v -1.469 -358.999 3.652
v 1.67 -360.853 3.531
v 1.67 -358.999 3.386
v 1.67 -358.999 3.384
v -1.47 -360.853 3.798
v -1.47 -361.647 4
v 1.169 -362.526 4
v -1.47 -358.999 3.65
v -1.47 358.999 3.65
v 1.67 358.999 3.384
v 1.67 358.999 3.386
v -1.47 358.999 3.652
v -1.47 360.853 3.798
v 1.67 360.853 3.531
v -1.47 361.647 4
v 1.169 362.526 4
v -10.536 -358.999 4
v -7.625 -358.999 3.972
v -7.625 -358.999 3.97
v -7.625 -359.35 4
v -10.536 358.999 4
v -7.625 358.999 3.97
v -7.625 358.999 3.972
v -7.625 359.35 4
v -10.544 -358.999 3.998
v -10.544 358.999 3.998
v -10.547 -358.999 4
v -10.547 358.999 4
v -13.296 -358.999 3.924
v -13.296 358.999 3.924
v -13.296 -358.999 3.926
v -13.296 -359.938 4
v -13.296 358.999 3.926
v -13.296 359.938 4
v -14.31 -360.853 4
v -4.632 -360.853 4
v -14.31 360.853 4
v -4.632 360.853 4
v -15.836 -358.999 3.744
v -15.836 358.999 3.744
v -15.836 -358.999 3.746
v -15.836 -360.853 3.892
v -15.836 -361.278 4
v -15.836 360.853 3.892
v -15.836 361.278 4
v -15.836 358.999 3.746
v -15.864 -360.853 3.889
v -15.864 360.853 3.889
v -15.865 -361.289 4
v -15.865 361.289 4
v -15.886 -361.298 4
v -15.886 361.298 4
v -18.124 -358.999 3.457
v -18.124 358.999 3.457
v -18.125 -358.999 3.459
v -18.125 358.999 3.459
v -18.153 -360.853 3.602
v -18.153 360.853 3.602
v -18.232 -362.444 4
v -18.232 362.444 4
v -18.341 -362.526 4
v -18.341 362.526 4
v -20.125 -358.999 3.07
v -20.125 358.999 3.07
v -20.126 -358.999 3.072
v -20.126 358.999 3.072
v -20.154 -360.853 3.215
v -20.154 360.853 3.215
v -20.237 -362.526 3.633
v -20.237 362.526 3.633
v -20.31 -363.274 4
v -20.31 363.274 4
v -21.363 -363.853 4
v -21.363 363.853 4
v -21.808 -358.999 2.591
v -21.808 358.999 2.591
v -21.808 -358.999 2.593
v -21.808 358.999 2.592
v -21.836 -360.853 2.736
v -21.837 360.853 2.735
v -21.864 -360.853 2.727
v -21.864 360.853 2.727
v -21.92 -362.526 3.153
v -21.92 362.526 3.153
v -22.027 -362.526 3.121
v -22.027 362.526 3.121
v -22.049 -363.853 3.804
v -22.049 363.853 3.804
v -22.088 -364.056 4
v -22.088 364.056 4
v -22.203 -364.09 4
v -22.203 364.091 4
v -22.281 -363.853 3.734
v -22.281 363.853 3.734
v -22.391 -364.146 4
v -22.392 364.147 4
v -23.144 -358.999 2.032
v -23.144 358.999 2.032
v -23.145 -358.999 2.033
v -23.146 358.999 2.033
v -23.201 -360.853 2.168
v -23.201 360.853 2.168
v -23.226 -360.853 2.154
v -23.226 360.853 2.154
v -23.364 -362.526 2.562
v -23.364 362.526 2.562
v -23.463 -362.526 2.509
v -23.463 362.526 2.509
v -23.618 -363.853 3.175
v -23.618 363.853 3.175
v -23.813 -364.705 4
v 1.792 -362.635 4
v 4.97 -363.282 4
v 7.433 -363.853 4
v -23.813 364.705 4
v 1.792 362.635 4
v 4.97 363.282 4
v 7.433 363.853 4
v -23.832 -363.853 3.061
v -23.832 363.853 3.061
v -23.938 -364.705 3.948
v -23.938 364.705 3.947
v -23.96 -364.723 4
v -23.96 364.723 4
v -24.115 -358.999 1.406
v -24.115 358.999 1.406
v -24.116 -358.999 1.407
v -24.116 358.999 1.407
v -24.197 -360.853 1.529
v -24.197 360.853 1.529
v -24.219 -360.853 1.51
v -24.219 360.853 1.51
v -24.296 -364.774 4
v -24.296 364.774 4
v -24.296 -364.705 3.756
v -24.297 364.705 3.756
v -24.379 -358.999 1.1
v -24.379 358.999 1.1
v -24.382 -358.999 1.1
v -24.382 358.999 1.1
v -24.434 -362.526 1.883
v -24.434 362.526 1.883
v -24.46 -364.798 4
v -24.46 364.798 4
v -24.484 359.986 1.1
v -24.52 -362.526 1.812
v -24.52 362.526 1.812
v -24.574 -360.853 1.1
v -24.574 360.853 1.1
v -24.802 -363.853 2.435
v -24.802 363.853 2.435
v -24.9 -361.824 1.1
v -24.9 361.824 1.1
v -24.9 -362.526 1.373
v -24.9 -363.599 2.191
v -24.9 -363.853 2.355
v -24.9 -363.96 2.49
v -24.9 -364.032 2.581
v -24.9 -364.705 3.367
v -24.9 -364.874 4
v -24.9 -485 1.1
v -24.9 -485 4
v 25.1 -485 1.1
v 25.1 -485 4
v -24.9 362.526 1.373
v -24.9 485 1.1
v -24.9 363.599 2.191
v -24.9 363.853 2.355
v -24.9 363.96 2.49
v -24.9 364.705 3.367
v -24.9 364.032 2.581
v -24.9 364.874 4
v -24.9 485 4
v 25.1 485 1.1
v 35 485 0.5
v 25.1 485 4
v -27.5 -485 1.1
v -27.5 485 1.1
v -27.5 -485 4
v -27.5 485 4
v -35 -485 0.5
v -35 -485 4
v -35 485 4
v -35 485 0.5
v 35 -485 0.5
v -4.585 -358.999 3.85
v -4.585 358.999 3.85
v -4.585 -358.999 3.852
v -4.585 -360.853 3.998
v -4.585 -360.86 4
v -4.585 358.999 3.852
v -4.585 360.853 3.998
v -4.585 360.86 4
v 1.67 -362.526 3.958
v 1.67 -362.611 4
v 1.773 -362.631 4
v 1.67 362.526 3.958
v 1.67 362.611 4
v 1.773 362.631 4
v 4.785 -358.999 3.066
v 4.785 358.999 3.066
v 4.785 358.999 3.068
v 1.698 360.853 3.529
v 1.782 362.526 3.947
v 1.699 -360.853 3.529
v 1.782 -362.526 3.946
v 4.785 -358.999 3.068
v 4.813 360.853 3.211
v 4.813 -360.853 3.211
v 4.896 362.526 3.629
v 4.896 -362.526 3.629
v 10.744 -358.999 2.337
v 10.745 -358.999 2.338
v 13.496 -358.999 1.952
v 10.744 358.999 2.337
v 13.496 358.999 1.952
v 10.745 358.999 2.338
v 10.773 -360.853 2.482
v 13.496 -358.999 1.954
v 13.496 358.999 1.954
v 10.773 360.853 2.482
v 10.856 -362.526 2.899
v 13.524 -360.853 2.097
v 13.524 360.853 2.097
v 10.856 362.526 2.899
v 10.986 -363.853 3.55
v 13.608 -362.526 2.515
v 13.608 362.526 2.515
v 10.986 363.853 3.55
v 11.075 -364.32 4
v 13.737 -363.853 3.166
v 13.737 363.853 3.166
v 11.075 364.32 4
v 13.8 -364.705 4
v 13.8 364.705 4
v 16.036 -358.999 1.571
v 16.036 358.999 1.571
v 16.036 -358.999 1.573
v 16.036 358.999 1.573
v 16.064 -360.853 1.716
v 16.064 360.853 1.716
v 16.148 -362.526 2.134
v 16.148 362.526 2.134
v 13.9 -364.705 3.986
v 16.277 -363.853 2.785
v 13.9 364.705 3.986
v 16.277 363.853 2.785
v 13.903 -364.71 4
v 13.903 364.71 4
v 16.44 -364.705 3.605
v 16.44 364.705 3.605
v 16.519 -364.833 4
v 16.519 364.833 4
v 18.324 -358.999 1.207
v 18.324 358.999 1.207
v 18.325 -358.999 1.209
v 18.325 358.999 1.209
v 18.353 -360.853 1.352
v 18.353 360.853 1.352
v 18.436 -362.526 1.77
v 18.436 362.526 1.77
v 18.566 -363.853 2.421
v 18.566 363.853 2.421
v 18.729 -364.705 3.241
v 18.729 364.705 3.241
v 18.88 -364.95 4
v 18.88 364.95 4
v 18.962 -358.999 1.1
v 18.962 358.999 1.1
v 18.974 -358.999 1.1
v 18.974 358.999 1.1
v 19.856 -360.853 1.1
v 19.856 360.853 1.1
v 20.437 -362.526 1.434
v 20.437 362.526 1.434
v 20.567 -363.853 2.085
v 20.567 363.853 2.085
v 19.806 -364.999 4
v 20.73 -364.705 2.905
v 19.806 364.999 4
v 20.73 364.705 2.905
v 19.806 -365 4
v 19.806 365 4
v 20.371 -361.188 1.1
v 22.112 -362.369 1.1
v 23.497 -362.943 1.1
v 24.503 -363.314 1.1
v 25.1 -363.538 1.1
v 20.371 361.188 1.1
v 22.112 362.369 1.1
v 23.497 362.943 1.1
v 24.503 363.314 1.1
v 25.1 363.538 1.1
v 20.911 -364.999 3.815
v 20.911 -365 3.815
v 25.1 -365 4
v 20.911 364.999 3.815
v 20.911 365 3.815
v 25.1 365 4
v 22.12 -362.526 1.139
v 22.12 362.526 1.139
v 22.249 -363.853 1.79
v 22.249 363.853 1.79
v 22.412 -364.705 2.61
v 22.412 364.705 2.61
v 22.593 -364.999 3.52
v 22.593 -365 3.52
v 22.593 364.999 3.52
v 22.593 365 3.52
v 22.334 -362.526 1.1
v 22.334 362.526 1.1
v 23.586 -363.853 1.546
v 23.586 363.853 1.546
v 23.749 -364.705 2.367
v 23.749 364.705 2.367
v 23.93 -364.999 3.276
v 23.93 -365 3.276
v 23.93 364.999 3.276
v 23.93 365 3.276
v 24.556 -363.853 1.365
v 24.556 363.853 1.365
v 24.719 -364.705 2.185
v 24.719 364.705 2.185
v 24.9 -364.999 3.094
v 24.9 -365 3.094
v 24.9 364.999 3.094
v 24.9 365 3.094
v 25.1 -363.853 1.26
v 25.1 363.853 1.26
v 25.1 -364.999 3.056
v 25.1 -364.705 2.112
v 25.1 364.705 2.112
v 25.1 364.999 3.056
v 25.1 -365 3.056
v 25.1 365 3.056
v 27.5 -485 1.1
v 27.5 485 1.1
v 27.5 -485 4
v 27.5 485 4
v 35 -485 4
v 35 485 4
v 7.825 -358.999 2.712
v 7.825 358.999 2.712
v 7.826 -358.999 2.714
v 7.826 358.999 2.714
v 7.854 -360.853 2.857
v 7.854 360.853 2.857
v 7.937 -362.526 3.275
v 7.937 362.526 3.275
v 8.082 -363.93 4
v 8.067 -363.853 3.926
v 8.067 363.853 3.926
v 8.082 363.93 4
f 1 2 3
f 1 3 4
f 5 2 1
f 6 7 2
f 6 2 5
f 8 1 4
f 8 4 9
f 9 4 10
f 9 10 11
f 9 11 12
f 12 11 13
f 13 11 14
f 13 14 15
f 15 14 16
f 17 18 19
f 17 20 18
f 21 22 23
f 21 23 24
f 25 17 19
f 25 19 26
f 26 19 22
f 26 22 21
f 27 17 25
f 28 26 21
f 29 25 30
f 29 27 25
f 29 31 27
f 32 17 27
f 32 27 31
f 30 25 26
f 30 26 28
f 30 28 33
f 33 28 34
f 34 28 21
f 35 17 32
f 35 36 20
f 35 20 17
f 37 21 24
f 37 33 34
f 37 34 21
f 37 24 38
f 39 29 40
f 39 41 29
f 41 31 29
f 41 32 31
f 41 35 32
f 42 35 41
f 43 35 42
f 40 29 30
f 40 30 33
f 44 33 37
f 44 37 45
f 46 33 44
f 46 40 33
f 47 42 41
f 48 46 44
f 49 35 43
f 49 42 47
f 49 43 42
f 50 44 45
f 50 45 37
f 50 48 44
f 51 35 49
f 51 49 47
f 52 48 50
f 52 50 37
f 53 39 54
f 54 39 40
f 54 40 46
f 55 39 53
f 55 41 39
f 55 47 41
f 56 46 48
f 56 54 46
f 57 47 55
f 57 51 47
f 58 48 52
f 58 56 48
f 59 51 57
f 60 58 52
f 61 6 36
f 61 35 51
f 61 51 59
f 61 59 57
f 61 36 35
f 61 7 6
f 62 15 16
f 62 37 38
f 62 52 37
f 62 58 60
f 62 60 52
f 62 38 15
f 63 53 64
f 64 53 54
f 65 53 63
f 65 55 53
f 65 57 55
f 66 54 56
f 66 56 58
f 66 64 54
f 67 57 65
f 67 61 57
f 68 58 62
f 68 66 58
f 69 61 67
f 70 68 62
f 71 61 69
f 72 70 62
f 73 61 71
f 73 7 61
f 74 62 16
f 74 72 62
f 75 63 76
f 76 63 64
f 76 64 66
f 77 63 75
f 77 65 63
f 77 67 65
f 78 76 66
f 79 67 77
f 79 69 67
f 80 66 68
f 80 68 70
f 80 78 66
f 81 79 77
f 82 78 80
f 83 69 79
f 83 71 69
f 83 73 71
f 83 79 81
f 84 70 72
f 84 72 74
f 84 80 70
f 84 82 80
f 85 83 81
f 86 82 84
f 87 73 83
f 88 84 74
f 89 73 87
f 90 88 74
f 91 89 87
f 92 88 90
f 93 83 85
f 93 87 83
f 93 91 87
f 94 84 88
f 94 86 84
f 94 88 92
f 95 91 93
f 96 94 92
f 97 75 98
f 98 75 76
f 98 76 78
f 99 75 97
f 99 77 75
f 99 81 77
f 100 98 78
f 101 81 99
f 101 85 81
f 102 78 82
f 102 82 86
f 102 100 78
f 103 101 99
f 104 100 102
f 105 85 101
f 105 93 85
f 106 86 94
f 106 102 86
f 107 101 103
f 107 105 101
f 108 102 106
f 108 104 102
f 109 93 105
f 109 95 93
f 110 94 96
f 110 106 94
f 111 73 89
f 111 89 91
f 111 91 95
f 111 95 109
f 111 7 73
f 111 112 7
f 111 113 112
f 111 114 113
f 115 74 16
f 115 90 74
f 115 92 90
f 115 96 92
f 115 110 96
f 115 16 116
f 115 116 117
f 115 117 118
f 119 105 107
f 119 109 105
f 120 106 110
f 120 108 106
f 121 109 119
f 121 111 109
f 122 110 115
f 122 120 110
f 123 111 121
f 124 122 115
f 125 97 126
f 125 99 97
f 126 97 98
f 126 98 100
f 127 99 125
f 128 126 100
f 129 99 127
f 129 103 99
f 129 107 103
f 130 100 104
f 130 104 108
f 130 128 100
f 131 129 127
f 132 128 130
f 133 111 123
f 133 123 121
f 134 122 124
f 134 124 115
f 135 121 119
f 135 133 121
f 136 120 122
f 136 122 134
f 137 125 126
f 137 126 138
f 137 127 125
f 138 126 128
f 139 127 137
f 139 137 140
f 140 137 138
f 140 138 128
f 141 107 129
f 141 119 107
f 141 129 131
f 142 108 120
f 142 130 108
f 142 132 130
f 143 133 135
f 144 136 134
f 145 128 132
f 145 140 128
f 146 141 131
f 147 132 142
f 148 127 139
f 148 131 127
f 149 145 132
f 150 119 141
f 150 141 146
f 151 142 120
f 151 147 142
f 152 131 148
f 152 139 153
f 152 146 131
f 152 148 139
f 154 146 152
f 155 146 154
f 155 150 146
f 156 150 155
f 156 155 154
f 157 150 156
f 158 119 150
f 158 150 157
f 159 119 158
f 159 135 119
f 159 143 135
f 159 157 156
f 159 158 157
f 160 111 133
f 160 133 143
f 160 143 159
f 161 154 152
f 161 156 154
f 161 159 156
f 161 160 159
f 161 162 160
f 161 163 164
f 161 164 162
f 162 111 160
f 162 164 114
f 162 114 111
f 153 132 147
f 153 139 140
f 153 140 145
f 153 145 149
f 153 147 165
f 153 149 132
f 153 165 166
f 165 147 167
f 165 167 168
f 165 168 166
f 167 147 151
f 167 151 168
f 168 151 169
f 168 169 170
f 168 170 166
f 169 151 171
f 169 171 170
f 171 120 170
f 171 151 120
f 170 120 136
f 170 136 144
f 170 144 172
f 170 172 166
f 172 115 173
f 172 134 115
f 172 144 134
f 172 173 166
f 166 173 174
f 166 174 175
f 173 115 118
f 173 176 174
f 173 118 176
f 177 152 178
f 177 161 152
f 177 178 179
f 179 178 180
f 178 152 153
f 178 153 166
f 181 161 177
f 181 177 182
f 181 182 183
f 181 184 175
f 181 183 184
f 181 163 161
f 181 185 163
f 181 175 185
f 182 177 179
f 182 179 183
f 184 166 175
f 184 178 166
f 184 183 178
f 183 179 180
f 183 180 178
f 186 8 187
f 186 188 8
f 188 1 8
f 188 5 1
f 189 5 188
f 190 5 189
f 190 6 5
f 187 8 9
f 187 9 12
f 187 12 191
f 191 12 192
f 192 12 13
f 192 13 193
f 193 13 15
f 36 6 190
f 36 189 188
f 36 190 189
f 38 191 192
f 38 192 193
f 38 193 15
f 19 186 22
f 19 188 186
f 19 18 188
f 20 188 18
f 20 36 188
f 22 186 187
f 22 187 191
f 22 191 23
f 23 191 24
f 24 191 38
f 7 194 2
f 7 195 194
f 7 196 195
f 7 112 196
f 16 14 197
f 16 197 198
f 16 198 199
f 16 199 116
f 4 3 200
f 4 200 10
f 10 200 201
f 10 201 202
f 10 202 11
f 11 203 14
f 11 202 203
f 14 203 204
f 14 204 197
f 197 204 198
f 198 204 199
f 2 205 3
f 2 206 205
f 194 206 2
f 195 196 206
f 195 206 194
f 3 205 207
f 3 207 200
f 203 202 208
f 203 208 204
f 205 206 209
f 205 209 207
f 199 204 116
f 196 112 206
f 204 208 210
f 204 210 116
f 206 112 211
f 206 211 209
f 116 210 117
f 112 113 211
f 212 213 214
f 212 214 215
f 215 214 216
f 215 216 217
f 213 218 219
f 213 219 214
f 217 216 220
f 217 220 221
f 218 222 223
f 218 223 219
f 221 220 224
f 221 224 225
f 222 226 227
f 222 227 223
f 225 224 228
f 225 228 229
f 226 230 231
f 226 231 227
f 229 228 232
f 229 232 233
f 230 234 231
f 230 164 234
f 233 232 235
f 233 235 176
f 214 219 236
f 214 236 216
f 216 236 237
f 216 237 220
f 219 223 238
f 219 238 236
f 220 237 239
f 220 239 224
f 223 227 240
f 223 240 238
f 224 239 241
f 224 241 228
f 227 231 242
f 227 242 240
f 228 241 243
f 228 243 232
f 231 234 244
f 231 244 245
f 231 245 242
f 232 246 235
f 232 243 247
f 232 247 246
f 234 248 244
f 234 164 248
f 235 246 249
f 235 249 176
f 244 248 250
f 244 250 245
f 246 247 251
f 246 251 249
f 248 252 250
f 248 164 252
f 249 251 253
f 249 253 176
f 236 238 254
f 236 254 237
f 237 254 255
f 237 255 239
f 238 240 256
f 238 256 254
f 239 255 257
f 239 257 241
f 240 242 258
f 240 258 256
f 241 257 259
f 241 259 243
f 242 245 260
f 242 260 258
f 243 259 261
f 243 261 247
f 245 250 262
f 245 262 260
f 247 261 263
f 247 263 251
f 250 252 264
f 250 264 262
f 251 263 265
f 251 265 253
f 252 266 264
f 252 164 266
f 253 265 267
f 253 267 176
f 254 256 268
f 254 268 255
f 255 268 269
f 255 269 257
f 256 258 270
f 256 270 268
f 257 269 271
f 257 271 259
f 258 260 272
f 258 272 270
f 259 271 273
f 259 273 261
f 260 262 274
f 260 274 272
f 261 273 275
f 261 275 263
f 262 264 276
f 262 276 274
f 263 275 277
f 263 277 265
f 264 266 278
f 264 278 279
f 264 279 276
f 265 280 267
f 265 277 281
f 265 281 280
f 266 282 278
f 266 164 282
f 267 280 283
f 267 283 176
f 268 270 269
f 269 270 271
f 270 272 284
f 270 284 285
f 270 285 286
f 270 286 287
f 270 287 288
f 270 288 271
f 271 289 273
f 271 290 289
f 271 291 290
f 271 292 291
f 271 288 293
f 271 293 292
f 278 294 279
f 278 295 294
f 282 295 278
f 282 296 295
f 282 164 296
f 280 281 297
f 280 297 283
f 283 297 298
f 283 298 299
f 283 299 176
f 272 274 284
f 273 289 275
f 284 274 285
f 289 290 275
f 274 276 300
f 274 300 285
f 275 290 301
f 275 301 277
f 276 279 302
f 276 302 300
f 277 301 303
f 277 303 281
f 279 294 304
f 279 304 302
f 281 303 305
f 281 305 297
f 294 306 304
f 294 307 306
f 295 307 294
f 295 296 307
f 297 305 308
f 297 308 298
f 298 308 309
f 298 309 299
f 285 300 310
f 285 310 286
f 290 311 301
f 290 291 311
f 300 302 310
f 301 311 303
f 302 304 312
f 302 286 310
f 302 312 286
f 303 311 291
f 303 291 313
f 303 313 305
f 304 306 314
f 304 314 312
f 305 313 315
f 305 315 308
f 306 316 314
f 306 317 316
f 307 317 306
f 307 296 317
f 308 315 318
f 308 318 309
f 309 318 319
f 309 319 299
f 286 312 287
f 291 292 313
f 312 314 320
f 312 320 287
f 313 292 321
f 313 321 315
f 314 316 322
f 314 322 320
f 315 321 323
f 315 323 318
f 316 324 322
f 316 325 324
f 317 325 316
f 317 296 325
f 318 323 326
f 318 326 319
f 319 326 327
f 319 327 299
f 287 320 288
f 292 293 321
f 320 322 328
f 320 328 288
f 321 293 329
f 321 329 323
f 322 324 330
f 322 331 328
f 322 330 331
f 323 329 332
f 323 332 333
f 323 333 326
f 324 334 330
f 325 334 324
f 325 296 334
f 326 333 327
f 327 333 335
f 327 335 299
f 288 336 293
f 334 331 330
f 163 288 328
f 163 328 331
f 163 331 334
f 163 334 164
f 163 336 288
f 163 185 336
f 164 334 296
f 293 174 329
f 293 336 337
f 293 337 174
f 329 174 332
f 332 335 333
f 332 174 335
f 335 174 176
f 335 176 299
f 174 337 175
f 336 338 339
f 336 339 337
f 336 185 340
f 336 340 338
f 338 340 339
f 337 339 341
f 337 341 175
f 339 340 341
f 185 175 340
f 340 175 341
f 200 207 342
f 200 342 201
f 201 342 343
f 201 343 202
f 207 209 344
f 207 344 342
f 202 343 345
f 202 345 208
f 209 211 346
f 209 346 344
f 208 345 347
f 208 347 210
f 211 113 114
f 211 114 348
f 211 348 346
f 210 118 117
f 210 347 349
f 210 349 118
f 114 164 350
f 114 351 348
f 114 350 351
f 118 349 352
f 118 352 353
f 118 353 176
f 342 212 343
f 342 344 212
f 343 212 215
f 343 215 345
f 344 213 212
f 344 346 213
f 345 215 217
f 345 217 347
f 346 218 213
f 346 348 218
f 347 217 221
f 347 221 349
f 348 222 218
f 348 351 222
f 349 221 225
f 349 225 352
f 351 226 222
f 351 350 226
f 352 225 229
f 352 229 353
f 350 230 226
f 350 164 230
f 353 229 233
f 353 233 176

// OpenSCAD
// file: ../666_1032.scad
draft = true;   // sets rendering quality to draft.
$fs = draft ? 5 : 0.5;
$fa = 10;

module 666_1032(draft){

    airfoil_thickness = 0030;
    depth = main_tube_outer_diameter*2;
    width = main_tube_outer_diameter + 2*(main_tube_outer_diameter/10);
    height = depth;

    beta = 90 - trailing_edge_angle(naca = airfoil_thickness); // calculate the angle of trailing edge
    trailing_wall= 1/(cos(beta)); //calculate lenght of wall cut relative to wall thickness
    echo(trailing_wall); // print a relative thickness of material at traling edge to wall thickness. 

    difference (){
union(){

    difference(){
    	airfoil(naca = airfoil_thickness, L = 170, N=101, h = height_of_vertical_tube + main_tube_outer_diameter/2 + 2*global_clearance + coupling_wall_thickness, open = false);
    	translate ([hull_wall_thickness,0,45])
            resize([170 - hull_wall_thickness - trailing_wall*hull_wall_thickness,(170*airfoil_thickness/100)- 2*hull_wall_thickness,210], auto=true) 
                airfoil(naca = airfoil_thickness, L = 170, N=101, h = height_of_vertical_tube + main_tube_outer_diameter/2 + 2*global_clearance, open = false);
    }
    //lem spodní a horní díl
    intersection(){
        difference(){
            union(){
                translate([0,-75,cover_pilon_division[1] - hull_wall_thickness])
                        cube([190,150,hull_wall_thickness]);
                translate([0,-75,cover_pilon_division[1]])
                        cube([190,150,hull_wall_thickness]);
        }

        translate ([ribbon_width,0,45])
            resize([170 - ribbon_width - trailing_wall*ribbon_width,(170*airfoil_thickness/100)- 2*ribbon_width,210], auto=true) 
                airfoil(naca = airfoil_thickness, L = 170, N=101, h = height_of_vertical_tube + main_tube_outer_diameter/2 + 2*global_clearance, open = false);
    //difference
    }
        airfoil(naca = airfoil_thickness, L = 170, N=101, h = height_of_vertical_tube + main_tube_outer_diameter/2 + 2*global_clearance + coupling_wall_thickness, open = false);
}
}
    	//pro otevření
    	translate ([120,- hull_wall_thickness/2,- 2*global_clearance])
    	   cube ([60,hull_wall_thickness,height_of_vertical_tube + 4*global_clearance]);

    	translate ([main_tube_outer_diameter + coupling_wall_thickness*2,-depth/2 - global_clearance,height_of_vertical_tube - main_tube_outer_diameter*2 - global_clearance/2 + main_tube_outer_diameter/2 + coupling_wall_thickness])
    	   cube ([width*5,depth + 2*global_clearance,height+global_clearance + main_tube_outer_diameter]);

        // hull shell from 666_1025.scad
        translate ([- cover_pilon_position,0,0])
            rotate ([90,0,0])
                drop(draft);
    //final difference
    }
//final module
}


//pro tisk

module 666_1032_A(draft){
        intersection(){
                666_1032(draft);
            translate([0,- 75,0])
                cube([180,150,cover_pilon_division[1]]);
        }
}

module 666_1032_B(draft){
    translate([0,0,20])
        intersection(){
                666_1032(draft);
            translate([0,- 75,cover_pilon_division[1]])
                cube([180,150,cover_pilon_division[2] - cover_pilon_division[1]]);
        }
}

//666_1032(draft);
666_1032_A(draft);
666_1032_B(draft);

use <./lib/naca4.scad>
include <../Parameters.scad>
use <666_1025.scad>
use <888_1000.scad>
// file: ../888_1000.scad
/*
// Nastavení zobrazení
$vpr = [338, 0, 357];
$vpt = [180, 25, -18];
$vpd = 1280;
*/
//improving rendering speed.
draft = true;   // sets rendering quality to draft.
$fs = draft ? 5 : 0.5;
$fa = 10;

/*
TODO: 

Přední díl obsahuje převis ve směru vybrání pro držák motoru. (U horního zámku)
Otvory pro šrouby v předním dílu jsou oválné, protože nejsou kolmo k rovině modelu.


*/




//vnitřní kapka
module hollowing_skeleton(shell_thickness = hull_wall_thickness, draft)
{

    beta = 90 - trailing_edge_angle(naca = hull_airfoil_thickness); // calculate the angle of trailing edge
    trailing_wall= 1/(cos(beta)); //calculate lenght of wall cut relative to wall thickness 

    intersection () {
    resize([hull_drop_length - shell_thickness - trailing_wall* shell_thickness, (hull_drop_length*hull_airfoil_thickness/100) - 2*shell_thickness, (hull_drop_length*hull_airfoil_thickness/100) - 2*shell_thickness], auto=true)
            rotate ([0,90,0])           
            rotate_extrude($fn = draft ? 50 : 100)
                rotate([0,0,90])
                    difference()
                    {
                      polygon(points = airfoil_data(naca=hull_airfoil_thickness, L = hull_drop_length, N=draft ? 50 : 200)); 
                      square(hull_drop_length); 
                    }
                    
      translate([0,0,hull_corner_radius])
        minkowski(){                   
            translate ([0,- hull_y_size , - hull_z_size/2 + shell_thickness])
                cube ([hull_x_size,2*hull_y_size - shell_thickness, hull_z_size - 2*shell_thickness - 2*hull_corner_radius]);
                rotate ([0,90,0])
                    cylinder (h = 1, r = hull_corner_radius, $fn = draft ? 50 : 100);                   
          }
                            
    }
}

module hollowing_skeleton_hem(ribbon_width, draft)
{

    beta = 90 - trailing_edge_angle(naca = hull_airfoil_thickness); // calculate the angle of trailing edge
    trailing_wall= 1/(cos(beta)); //calculate lenght of wall cut relative to wall thickness 

    intersection () {
    resize([hull_drop_length - ribbon_width - trailing_wall* ribbon_width, (hull_drop_length*hull_airfoil_thickness/100) - 2*ribbon_width, (hull_drop_length*hull_airfoil_thickness/100) - 2*ribbon_width], auto=true)
            rotate ([0,90,0])           
            rotate_extrude($fn = draft ? 50 : 100)
                rotate([0,0,90])
                    difference()
                    {
                      polygon(points = airfoil_data(naca=hull_airfoil_thickness, L = hull_drop_length, N=draft ? 50 : 200)); 
                      square(hull_drop_length); 
                    }
                    
      translate([0,0,hull_corner_radius])
        minkowski(){                   
            translate ([0,- hull_y_size, - hull_z_size/2 + ribbon_width])
                cube ([hull_x_size,2*hull_y_size - ribbon_width, hull_z_size - 2*ribbon_width - 2*hull_corner_radius]);
                rotate ([0,90,0])
                    cylinder (h = 1, r = hull_corner_radius, $fn = draft ? 50 : 100);                   
          }
                            
    }
}




//celá kapka
module drop(draft = true)
{

    beta = 90 - trailing_edge_angle(naca = hull_airfoil_thickness); // calculate the angle of trailing edge
    trailing_wall= 1/(cos(beta)); //calculate lenght of wall cut relative to wall thickness 

	intersection () {
    	rotate ([0,90,0])           
        	rotate_extrude($fn = draft ? 50 : 100)
                    rotate([0,0,90])
                        difference()
                        {
	                        polygon(points = airfoil_data(naca=hull_airfoil_thickness, L =hull_drop_length , N=draft ? 50 : 200)); 
    	                    square(hull_drop_length); 
        	            }
            		
        translate([0,0,hull_corner_radius])
          	minkowski(){                   
             	translate ([0,-hull_y_size,-hull_z_size/2])
             			cube ([hull_x_size, 2*hull_y_size,hull_z_size-2*hull_corner_radius]);
             	  	rotate ([0,90,0])
                 		cylinder (h = 1, r = hull_corner_radius, $fn = draft ? 50 : 100);                   
		    }
		    
	}
}


//základní kapka
module drop_skin(draft){

	difference(){
			drop();
		translate([hull_wall_thickness,0,0])
			hollowing_skeleton();
	}

}




drop_skin();














use <./lib/naca4.scad>
include <../Parameters.scad>
// file: ../666_1025.scad
use <./lib/naca4.scad>
include <../Parameters.scad>
use <666_1032.scad>


//Jen pro názornost
	//translate([180,0,0])
		//rotate ([-90,0,0])
			//666_1032();





module 666_1025(){

    beta = 90 - trailing_edge_angle(naca = hull_airfoil_thickness); // calculate the angle of trailing edge
    trailing_wall= 1/(cos(beta)); //calculate lenght of wall cut relative to wall thickness
    echo(trailing_wall); // print a relative thickness of material at traling edge to wall thickness.    

    difference(){
        intersection () {
            union(){
        		rotate ([0,90,0])           
                    rotate_extrude($fn = 100)
                        rotate([0,0,90])
                            difference()
                            {

                              polygon(points = airfoil_data(naca=hull_airfoil_thickness, L =hull_drop_length , N=100)); 
                              square(hull_drop_length); 
                            }

                // 666_1032 part holder
                translate([180,0,0]) 
                    rotate ([-90,0,0]) 
                        difference(){
                            
                            translate ([hull_wall_thickness,0,0])
                                resize([170 - hull_wall_thickness - trailing_wall*hull_wall_thickness,(170*0030/100)- 2*hull_wall_thickness,210], auto=true) 
                                    airfoil(naca = 0030, L = 170, N=101, h = 200, open = false);
                            translate ([2*hull_wall_thickness,0,0])       
                                resize([170 - hull_wall_thickness*2 - trailing_wall*hull_wall_thickness*2,(160*0030/100)- 2*hull_wall_thickness,210], auto=true) 
                                    airfoil(naca = 0030, L = 170, N=101, h = 200, open = false);
                            
                        }

            }
            minkowski(){                   
             	translate ([0,-(main_tube_outer_diameter/2)+1,-hull_z_size/2])
             		cube ([hull_x_size, hull_y_size,hull_z_size]);
             	
             		rotate ([0,90,0])
                 		cylinder (h = 1, r = hull_corner_radius, $fn = 100);                   

        	}

        }   

        //hollowing skeleton
    		translate ([hull_wall_thickness,0,0])
            	intersection () {
                    resize([hull_drop_length - hull_wall_thickness - trailing_wall* hull_wall_thickness, (hull_drop_length*hull_airfoil_thickness/100) - 2*hull_wall_thickness, (hull_drop_length*hull_airfoil_thickness/100) - 2*hull_wall_thickness], auto=true)
                 		rotate ([0,90,0])           
                            rotate_extrude($fn = 100)
                                rotate([0,0,90])
                                    difference()
                                    {

                                      polygon(points = airfoil_data(naca=hull_airfoil_thickness, L = hull_drop_length, N=200)); 
                                      square(hull_drop_length); 
                                    }
                 	minkowski(){                   
                     	translate ([0,-(main_tube_outer_diameter/2),-hull_z_size/2 + hull_wall_thickness])
                     		cube ([hull_x_size,hull_y_size - hull_wall_thickness, hull_z_size - 2*hull_wall_thickness]);
                     		rotate ([0,90,0])
                         		cylinder (h = 1, r = hull_corner_radius, $fn = 100);                   
            		}                   
            	}
            //for front part
    		translate ([-2,-1 - main_tube_outer_diameter/2,-25])
    				cube ([52,hull_y_size+10,50]);

        //for tube in back
    		translate ([hull_x_size-70,0,0])
    			rotate ([0,90,0])
    				cylinder (h = 80, r1 = main_tube_outer_diameter/2, r2 = main_tube_outer_diameter/2, $fn = 200);
    					    
        //for tube - propeller

			translate ([180+2*hull_wall_thickness,-10,0])       
				rotate ([-90,0,0])
                    resize([170 - hull_wall_thickness*2 - trailing_wall*hull_wall_thickness*2,(160*0030/100)- 2*hull_wall_thickness,210], auto=true) 
                        airfoil(naca = 0030, L = 170, N=101, h = 200, open = false);
        			
        //for printing
    		translate([0,-main_tube_outer_diameter/2-4.90,-170/2])
    			cube ([600,5,170]);

    		translate([hull_x_size-50,-main_tube_outer_diameter,-main_tube_outer_diameter/2])		
    			cube([80,main_tube_outer_diameter, main_tube_outer_diameter]);	

    }


}

    intersection(){
        666_1025();
        translate([0,-20,-150])                        
           cube([150,150,300]);
    }

    translate([20,0,0])
        intersection(){
            666_1025();
            translate([150,-20,-150])
               cube([150,150,300]);
        }

    translate([40,0,0])
        intersection(){
            666_1025();
            translate([300,-20,-150])
               cube([150,150,300]);
        }


    translate([60,0,0])
        intersection(){
            666_1025();
            translate([450,-20,-150])
               cube([150,150,300]);
        }
// file: ../lib/bevel.scad
h=20;

h_bevel=6;
r_bevel=3;

function h_bev(i)=h_bevel*(1-cos(90*i));
function r_bev(i)=((i==1)?e:0)+r_bevel*(1-sin(90*i));


e=0.001;

fn_bevel=16 ;
$fn=32;

module part_base(){
	cube([60,30,20]);
}

module part1(){
	translate([25,15,20])
		rotate([0,0,0])
			cylinder(40,10,5,true,$fn=5);
}

module part2(){
	translate([25,15,20])
		difference(){
		rotate([90,0,0])
			rotate_extrude()translate([10,0,0])circle(5);
		rotate([0,45,0])translate([100,0,0])cube(200,true);
		}
}

module part3(){
	translate([25,15,20])
		rotate([0,135,0])
			translate([-10,0,0])
			linear_extrude(height=15+e,scale=[1,e])circle(5);
}


module part4(){
	translate([25,15,0])
			translate([-10,0,0])
			cube([10,10,100]);
			/*union(){
				airfoil(naca = 0015, L = 20, N = 100, h = 50, open = false);
			}*/
}

module slice(h){
	projection(cut=true)
		translate([0,0,-h])
			children(0);
}

module edge(){
	difference(){
		minkowski(){
			children(0);
			circle(e);
		}
		children(0);
	}
}

module bev(i){
	minkowski(){
		children(0);
		circle(r_bev(i));
	}
}

module extrude(){
	linear_extrude(height=e)children(0);
}

module bevel(h,h_bevel,r_bevel,fn_bevel){
	translate([0,0,h])
		for(i=[0:1/fn_bevel:1-1/fn_bevel]){
			hull(){
				translate([0,0,h_bev(i)])
					extrude()bev(i)edge()slice(h+h_bev(i))children(0);
				translate([0,0,h_bev(i+1/fn_bevel)])
					extrude()bev(i+1/fn_bevel)edge()slice(h+h_bev(i+1/fn_bevel))children(0);
			}
		}
}


use <./naca4.scad>

//bevel(10,10,10,20)airfoil(naca = 0015, L = 100, N = 100, h = 50, open = false);



//bevel(h,h_bevel,r_bevel,fn_bevel)part2();
//bevel(h,h_bevel,r_bevel,fn_bevel)part3();
part1();
//part1();
bevel(h,h_bevel,r_bevel,fn_bevel)part1();
//part4();
//part1();
//part_base();
// file: ../lib/naca4.scad
// Naca4.scad - library for parametric airfoils of 4 digit NACA series
// Code: Rudolf Huttary, Berlin 
// June 2015
// commercial use prohibited


// general use: for more examples refer to sampler.scad
// naca = naca digits or 3el vector  (default = 12 or [0, 0, .12])
// L    = chord length [mm]      (default= 100)
// N    = # sample points        (default= 81)
// h    = height [mm]            (default= 1)
// open = close at the thin end? (default = true)
// two equivalent example calls
 airfoil(naca = 2408, L = 60, N=1001, h = 30, open = false); 
// airfoil(naca = [.2, .4, .32], L = 60, N=1001, h = 30, open = false); 

module help()
{
  echo(str("\n\nList of signatures in lib:\n=================\n", 
  "module airfoil(naca=2412, L = 100, N = 81, h = 1, open = false) - renders airfoil object\n", 
  "module airfoil(naca=[.2, .4, .12], L = 100, N = 81, h = 1, open = false) - renders airfoil object using percentage for camber,  camber distance and thicknes\n", 
  "function airfoil_data(naca=12, L = 100, N = 81, open = false)\n",
  "=================\n")); 
}

help(); 
// this is the object
module airfoil(naca=12, L = 100, N = 81, h = 1, open = false)
{
  linear_extrude(height = h)
  polygon(points = airfoil_data(naca, L, N, open)); 
}

module hollow_airfoil(lnaca=12, L = 100, N = 81, h = 1, open = false, wall_thickness = 1)
{
    if (open){
        linear_extrude(height = h)

        if (wall_thickness>0){
            difference(){
                polygon(points = airfoil_data(naca, L, N, false));
                offset(delta = - wall_thickness, chamfer = false) polygon(points = airfoil_data(naca, L, N, open = false));
            }
        }
        else{
            difference(){
                offset(delta = - wall_thickness, chamfer = false) polygon(points = airfoil_data(naca, L, N, open = false));
                polygon(points = airfoil_data(naca, L, N, false));
            }
        }
    }
    else{

        linear_extrude(height = abs(wall_thickness))
            polygon(points = airfoil_data(naca, L, N, false)); 

        linear_extrude(height = h)
            difference(){
                polygon(points = airfoil_data(naca, L, N, open));
                offset(delta = - wall_thickness) polygon(points = airfoil_data(naca, L, N, open = false));
            }

        translate([0,0, h - wall_thickness])
            linear_extrude(height = abs(wall_thickness))
                polygon(points = airfoil_data(naca, L, N, false)); 

    }
}


// this is the main function providing the airfoil data
function airfoil_data(naca=12, L = 100, N = 81, open = false) = 
  let(Na = len(naca)!=3?NACA(naca):naca)
  let(A = [.2969, -0.126, -.3516, .2843, open?-0.1015:-0.1036])
  [for (b=[-180:360/(N):179.99]) 
    let (x = (1-cos(b))/2)  
    let(yt = sign(b)*Na[2]/.2*(A*[sqrt(x), x, x*x, x*x*x, x*x*x*x])) 
    Na[0]==0?L*[x, yt]:L*camber(x, yt, Na[0], Na[1], sign(b))];  


function trailing_edge_angle(naca=12, open = false) = 
  let(Na = len(naca)!=3?NACA(naca):naca)
  let(A = [.2969, -0.126, -.3516, .2843, open?-0.1015:-0.1036])
  let (x =0.999)  // set x near to airfoil trailing edge
  let(yt = Na[2]/.2*(A*[sqrt(x), x, x*x, x*x*x, x*x*x*x])) // calculate distance from x-axis at previously set position
  atan2(yt,1-x);  // calculate angle of triangle between end of airfoil. The triange height corresponds to previously calculated distance from x-axis

function surface_angle(x = 0.5, naca=12, open = false) = 
  let(Na = len(naca)!=3?NACA(naca):naca)
  let(A = [0.2969, -0.126, -0.3516, 0.2843, open?-0.1015:-0.1036])
  let(dy = Na[2]/0.2*(A*[(1/2)*(1/sqrt(x)), 1, 2*x, 3*x*x, 4*x*x*x])) // calculate derivative of airfoil function at the x point
  atan(dy);  // calculate  the angle from function derivative

function surface_distance(x = 0.5, naca=12, open = false) = 
  let(Na = len(naca)!=3?NACA(naca):naca)
  let(A = [0.2969, -0.126, -0.3516, 0.2843, open?-0.1015:-0.1036])
  Na[2]/.2*(A*[sqrt(x), x, x*x, x*x*x, x*x*x*x]); // calculate distance from x-axis at previously set position

// helper functions
function NACA(naca) = 
  let (M = floor(naca/1000))
  let (P = floor((naca-M*1000)/100)) 
  [M/100, P/10, floor(naca-M*1000-P*100)/100];  

function camber(x, y, M, P, upper) = 
  let(yc = (x<P)?M/P/P*(2*P*x-x*x): M/(1-P)/(1-P)*(1 - 2*P + 2*P*x -x*x))
  let(dy = (x<P)?2*M/P/P*(P-x):2*M/(1-P)/(1-P)*(P-x))
  let(th = atan(dy))
  [upper ? x - y*sin(th):x + y*sin(th), upper ? yc + y*cos(th):yc - y*cos(th)];
// file: ../333_1037.scad
draft = true;   // sets rendering quality to draft.
$fs = draft ? 5 : 0.5;
$fa = 10;

module 333_1037(twosided = true, draft = false){

    airfoil_NACA = 0016;    // typ použitého profilu
    airfoil_depth = 50; // hloubka profilu
    length = 970;       // celková délka polotovaru
    core_thickness = 1.0;       // tloušťka jádra
    airfoil_thickness = (airfoil_NACA/100) * airfoil_depth; // vypočtená maximální tloušťka profilu
    bridge_thickness = 0.6;  // tloušťka spojení mezi rotorovým listem a rámečkem

    if(twosided) // výpis vypočtené tloušťky profilu
        echo("Minimum material thickness", airfoil_thickness);
    else
        echo("Minimum material thickness", airfoil_thickness/2 - core_thickness/2);  

    difference (){      // odečet poloviny polotovaru a jádra v případě, že jde o jednostranný  polotovar
        union(){
            // laminátové jádro listu
            difference (){
                cube([70, length, airfoil_thickness], center = true);

                // odečet frézovaného objemu, pokud jde o jednostranný polotovar, tak musí být zanechán materiál pro přidržení rámečku materiálu.
            	translate ([0, 0, 10/2 + (twosided ? (core_thickness/2) : (bridge_thickness + core_thickness/2))])
                    cube([70 - 2*7.5, length, 10], center = true);

                translate ([0, 0, -10/2 - (twosided ? core_thickness/2 : (bridge_thickness + core_thickness/2))])
                    cube([70 - 2*7.5, length, 10], center = true);
            }

            // kořeny rotorového listu
            translate ([ 0.1, -970/2 + 60, 0])
                cube ([50, 120, airfoil_thickness], center = true);

            translate ([ 0.1, 970/2 - 60, 0])
                cube ([50, 120, airfoil_thickness], center = true);

            // Samotný profil rotorového listu
            color("Blue",0.5)
            translate ([ -70/2 + 2.6 + 7.5, length/2, 0])
                rotate([90, 0, 0])
                    airfoil(naca = airfoil_NACA, L = airfoil_depth, N = draft ? 50 : 100, h = length, open = false);  

            // přechod z kořenu rotorového listu na list
            intersection(){
                translate ([ 0.1, 0, 0])
                    cube([50,length,airfoil_thickness], center = true);

                union(){
                    translate ([ -70/2 + 2.6 + 7.5, length/2, 0])
                        rotate([90, 0, 0])
                            bevel(120,15,15, draft ? 5 : 50)
                                airfoil(naca = airfoil_NACA, L = airfoil_depth, N = draft ? 50 : 100, h = length, open = false);

                    translate ([ -70/2 + 2.6 + 7.5, -length/2, 0])
                        rotate([-90,0,0])
                            bevel(120,15,15,draft ? 5 : 50)
                                airfoil(naca = airfoil_NACA, L = airfoil_depth, N = draft ? 50 : 100, h = length, open = false);
                }
            }
        }

        if(twosided == false)        // odečtení spodní poloviny listu a kompozitního jádra
            translate ([0, 0, -10/2 + core_thickness/2])
                cube([70, length, 10], center = true);
    }
}


333_1037(twosided = false, draft = true);

use <./lib/naca4.scad>
use <./lib/bevel.scad>
include <../Parameters.scad>
use <666_1025.scad>
use <888_1000.scad>
// file: ../../Parameters.scad
//Main tube diameter - hole [mm]
main_tube_outer_diameter = 25.4;
main_tube_inner_diameter = 23.5;

//Tube for undercarriage - hole [mm]
tube_for_undercarriage_outer_diameter = 10.6;
tube_for_undercarriage_inner_diameter = 6;
global_clearance = 0.5;


//umístění podvozkových trubek

second_undercarriage_hole = main_tube_outer_diameter*2 + main_tube_outer_diameter/5 + main_tube_outer_diameter/2 + 170 + 160;

// Parameters of cube couplings
coupling_wall_thickness = main_tube_outer_diameter/5;  //width of coupling walls 
thickness_between_tubes = main_tube_outer_diameter/10;    // minimum distance between tubes in couplings

coupling_wall_thickness_undercarriage = tube_for_undercarriage_outer_diameter/3;
thickness_between_tubes_undercarriage = tube_for_undercarriage_outer_diameter/10;

//Screw diameter and nut for M4 [mm]
M4_screw_diameter=4.5;
Nut_height_M4 = 3.2;
Nut_diameter_M4 = 7.86;


//Screw diameter and nut for M3 [mm]
M3_screw_diameter = 3.2;
Nut_height_M3 = 1.7;	
Nut_diameter_M3 = 6.6; 


//The tube for help
Help_main_tube_outer = 25;
Help_main_tube_inner = 23; 
Help_tube_for_undercarriage_outer = 10;
Help_tube_for_undercarriage_inner = 5;


//main hull parameters

hull_drop_length = 580;
hull_wall_thickness = 0.8;
hull_y_size = 120;
hull_z_size = 150;
hull_x_size = 580;
hull_corner_radius = 4;
hull_airfoil_thickness= 35;  // thickness of drop generating airfoil in percent of lenght.
hull_scale_x = 1;
hull_scale_y = 1.5;
hull_scale_z = 1.5;

main_pilon_position = 170+68;
cover_pilon_position = 180;
height_of_vertical_tube = 275; //278mm je změřená délka trubky. 

ribbon_width = 5; // šířka vyztužovacích lemů. 

// šířka otvoru v přední části kapoty pro držák motoru.
width_of_engine_holder = 63;

//Top Cover Division - dělení horního krytu pro tisk
top_cover_division = [0, 50, 150, 280, 410, hull_x_size]; // upraveny seznam tak, aby deleni začinalo od nuly, což umožňí úplně automatické rozdělení.

//Bottom Cover Division - dělení dolního krytu pro tisk
bottom_cover_division = [0,100,250,365, 470, hull_x_size];
// zkrácená část pro payload pro testovací tisk
//bottom_cover_division = [0,200,250,365, 470, hull_x_size];

//Base Divison - dělení podložky
base_division = [0,140,280,410, hull_x_size];

//Cover pilon division - na výšku (v ose Z)
cover_pilon_division = [0,170,height_of_vertical_tube + main_tube_outer_diameter + coupling_wall_thickness];

//pozice šroubů
	//horní kryt
top_screw_position = [0, (top_cover_division[0] + top_cover_division[1])/4, (top_cover_division[2] - top_cover_division[1])/2 + top_cover_division[1], (top_cover_division[3] - top_cover_division[2])/2 + top_cover_division[2],(top_cover_division[4] - top_cover_division[3])/2 + top_cover_division[3],(top_cover_division[5] - top_cover_division[4])/2 + top_cover_division[4] - 20];
	//spodní kryt
bottom_screw_position = [0,(bottom_cover_division[0] + bottom_cover_division[1])/15 + 5, bottom_cover_division[1]/1.1, + bottom_cover_division[3], bottom_cover_division[3] + bottom_cover_division[1]/2, bottom_cover_division[4] - 6*global_clearance, bottom_cover_division[4] + bottom_cover_division[1]/2.5];




//šířka zámků
lock_width = 10;

//délka zámků
lock_length = 3;


//accumulator
//základní rozměry akumulátoru
width_of_accumulator = 129.4;//45+1;
depth_of_accumulator = 40.61;
height_of_accumulator = 43.65;
//Zapuštění akumulátoru
sink_of_accumulator = 5; //main_tube_outer_diameter/5 - Nut_height_M3*1.5;

//tloušťka hrany spojky
accumulator_holder_width = 18; 
accumulator_holder_thickness = 10; 

//posunutí akumálátoru na podložce
move_of_accumulator = 165;   // pozice akumulátoru (ovlivňuje těžiště)


////////////////
// Senzory
///////////////////

//opticalFlow
    width_optical_flow_senzor = 45.5;
    depth_optical_flow_senzor = 6;
    height_optical_flow_senzor = 35;
    sink_of_optical_flow_senzor = depth_optical_flow_senzor - 5; 
    M3_optical_flow_senzor_Z = 30.4;
    M3_optical_flow_senzor_X = 24;
    M3_optical_flow_senzor_Z_alone = 9.1;
    M3_optical_flow_senzor_X_alone = 16.7;
// main file
include <../../Parameters.scad>
use <../333_1037.scad>

draft = false;

$vpd = 680;
        
333_1037(twosided = false, draft = true);
